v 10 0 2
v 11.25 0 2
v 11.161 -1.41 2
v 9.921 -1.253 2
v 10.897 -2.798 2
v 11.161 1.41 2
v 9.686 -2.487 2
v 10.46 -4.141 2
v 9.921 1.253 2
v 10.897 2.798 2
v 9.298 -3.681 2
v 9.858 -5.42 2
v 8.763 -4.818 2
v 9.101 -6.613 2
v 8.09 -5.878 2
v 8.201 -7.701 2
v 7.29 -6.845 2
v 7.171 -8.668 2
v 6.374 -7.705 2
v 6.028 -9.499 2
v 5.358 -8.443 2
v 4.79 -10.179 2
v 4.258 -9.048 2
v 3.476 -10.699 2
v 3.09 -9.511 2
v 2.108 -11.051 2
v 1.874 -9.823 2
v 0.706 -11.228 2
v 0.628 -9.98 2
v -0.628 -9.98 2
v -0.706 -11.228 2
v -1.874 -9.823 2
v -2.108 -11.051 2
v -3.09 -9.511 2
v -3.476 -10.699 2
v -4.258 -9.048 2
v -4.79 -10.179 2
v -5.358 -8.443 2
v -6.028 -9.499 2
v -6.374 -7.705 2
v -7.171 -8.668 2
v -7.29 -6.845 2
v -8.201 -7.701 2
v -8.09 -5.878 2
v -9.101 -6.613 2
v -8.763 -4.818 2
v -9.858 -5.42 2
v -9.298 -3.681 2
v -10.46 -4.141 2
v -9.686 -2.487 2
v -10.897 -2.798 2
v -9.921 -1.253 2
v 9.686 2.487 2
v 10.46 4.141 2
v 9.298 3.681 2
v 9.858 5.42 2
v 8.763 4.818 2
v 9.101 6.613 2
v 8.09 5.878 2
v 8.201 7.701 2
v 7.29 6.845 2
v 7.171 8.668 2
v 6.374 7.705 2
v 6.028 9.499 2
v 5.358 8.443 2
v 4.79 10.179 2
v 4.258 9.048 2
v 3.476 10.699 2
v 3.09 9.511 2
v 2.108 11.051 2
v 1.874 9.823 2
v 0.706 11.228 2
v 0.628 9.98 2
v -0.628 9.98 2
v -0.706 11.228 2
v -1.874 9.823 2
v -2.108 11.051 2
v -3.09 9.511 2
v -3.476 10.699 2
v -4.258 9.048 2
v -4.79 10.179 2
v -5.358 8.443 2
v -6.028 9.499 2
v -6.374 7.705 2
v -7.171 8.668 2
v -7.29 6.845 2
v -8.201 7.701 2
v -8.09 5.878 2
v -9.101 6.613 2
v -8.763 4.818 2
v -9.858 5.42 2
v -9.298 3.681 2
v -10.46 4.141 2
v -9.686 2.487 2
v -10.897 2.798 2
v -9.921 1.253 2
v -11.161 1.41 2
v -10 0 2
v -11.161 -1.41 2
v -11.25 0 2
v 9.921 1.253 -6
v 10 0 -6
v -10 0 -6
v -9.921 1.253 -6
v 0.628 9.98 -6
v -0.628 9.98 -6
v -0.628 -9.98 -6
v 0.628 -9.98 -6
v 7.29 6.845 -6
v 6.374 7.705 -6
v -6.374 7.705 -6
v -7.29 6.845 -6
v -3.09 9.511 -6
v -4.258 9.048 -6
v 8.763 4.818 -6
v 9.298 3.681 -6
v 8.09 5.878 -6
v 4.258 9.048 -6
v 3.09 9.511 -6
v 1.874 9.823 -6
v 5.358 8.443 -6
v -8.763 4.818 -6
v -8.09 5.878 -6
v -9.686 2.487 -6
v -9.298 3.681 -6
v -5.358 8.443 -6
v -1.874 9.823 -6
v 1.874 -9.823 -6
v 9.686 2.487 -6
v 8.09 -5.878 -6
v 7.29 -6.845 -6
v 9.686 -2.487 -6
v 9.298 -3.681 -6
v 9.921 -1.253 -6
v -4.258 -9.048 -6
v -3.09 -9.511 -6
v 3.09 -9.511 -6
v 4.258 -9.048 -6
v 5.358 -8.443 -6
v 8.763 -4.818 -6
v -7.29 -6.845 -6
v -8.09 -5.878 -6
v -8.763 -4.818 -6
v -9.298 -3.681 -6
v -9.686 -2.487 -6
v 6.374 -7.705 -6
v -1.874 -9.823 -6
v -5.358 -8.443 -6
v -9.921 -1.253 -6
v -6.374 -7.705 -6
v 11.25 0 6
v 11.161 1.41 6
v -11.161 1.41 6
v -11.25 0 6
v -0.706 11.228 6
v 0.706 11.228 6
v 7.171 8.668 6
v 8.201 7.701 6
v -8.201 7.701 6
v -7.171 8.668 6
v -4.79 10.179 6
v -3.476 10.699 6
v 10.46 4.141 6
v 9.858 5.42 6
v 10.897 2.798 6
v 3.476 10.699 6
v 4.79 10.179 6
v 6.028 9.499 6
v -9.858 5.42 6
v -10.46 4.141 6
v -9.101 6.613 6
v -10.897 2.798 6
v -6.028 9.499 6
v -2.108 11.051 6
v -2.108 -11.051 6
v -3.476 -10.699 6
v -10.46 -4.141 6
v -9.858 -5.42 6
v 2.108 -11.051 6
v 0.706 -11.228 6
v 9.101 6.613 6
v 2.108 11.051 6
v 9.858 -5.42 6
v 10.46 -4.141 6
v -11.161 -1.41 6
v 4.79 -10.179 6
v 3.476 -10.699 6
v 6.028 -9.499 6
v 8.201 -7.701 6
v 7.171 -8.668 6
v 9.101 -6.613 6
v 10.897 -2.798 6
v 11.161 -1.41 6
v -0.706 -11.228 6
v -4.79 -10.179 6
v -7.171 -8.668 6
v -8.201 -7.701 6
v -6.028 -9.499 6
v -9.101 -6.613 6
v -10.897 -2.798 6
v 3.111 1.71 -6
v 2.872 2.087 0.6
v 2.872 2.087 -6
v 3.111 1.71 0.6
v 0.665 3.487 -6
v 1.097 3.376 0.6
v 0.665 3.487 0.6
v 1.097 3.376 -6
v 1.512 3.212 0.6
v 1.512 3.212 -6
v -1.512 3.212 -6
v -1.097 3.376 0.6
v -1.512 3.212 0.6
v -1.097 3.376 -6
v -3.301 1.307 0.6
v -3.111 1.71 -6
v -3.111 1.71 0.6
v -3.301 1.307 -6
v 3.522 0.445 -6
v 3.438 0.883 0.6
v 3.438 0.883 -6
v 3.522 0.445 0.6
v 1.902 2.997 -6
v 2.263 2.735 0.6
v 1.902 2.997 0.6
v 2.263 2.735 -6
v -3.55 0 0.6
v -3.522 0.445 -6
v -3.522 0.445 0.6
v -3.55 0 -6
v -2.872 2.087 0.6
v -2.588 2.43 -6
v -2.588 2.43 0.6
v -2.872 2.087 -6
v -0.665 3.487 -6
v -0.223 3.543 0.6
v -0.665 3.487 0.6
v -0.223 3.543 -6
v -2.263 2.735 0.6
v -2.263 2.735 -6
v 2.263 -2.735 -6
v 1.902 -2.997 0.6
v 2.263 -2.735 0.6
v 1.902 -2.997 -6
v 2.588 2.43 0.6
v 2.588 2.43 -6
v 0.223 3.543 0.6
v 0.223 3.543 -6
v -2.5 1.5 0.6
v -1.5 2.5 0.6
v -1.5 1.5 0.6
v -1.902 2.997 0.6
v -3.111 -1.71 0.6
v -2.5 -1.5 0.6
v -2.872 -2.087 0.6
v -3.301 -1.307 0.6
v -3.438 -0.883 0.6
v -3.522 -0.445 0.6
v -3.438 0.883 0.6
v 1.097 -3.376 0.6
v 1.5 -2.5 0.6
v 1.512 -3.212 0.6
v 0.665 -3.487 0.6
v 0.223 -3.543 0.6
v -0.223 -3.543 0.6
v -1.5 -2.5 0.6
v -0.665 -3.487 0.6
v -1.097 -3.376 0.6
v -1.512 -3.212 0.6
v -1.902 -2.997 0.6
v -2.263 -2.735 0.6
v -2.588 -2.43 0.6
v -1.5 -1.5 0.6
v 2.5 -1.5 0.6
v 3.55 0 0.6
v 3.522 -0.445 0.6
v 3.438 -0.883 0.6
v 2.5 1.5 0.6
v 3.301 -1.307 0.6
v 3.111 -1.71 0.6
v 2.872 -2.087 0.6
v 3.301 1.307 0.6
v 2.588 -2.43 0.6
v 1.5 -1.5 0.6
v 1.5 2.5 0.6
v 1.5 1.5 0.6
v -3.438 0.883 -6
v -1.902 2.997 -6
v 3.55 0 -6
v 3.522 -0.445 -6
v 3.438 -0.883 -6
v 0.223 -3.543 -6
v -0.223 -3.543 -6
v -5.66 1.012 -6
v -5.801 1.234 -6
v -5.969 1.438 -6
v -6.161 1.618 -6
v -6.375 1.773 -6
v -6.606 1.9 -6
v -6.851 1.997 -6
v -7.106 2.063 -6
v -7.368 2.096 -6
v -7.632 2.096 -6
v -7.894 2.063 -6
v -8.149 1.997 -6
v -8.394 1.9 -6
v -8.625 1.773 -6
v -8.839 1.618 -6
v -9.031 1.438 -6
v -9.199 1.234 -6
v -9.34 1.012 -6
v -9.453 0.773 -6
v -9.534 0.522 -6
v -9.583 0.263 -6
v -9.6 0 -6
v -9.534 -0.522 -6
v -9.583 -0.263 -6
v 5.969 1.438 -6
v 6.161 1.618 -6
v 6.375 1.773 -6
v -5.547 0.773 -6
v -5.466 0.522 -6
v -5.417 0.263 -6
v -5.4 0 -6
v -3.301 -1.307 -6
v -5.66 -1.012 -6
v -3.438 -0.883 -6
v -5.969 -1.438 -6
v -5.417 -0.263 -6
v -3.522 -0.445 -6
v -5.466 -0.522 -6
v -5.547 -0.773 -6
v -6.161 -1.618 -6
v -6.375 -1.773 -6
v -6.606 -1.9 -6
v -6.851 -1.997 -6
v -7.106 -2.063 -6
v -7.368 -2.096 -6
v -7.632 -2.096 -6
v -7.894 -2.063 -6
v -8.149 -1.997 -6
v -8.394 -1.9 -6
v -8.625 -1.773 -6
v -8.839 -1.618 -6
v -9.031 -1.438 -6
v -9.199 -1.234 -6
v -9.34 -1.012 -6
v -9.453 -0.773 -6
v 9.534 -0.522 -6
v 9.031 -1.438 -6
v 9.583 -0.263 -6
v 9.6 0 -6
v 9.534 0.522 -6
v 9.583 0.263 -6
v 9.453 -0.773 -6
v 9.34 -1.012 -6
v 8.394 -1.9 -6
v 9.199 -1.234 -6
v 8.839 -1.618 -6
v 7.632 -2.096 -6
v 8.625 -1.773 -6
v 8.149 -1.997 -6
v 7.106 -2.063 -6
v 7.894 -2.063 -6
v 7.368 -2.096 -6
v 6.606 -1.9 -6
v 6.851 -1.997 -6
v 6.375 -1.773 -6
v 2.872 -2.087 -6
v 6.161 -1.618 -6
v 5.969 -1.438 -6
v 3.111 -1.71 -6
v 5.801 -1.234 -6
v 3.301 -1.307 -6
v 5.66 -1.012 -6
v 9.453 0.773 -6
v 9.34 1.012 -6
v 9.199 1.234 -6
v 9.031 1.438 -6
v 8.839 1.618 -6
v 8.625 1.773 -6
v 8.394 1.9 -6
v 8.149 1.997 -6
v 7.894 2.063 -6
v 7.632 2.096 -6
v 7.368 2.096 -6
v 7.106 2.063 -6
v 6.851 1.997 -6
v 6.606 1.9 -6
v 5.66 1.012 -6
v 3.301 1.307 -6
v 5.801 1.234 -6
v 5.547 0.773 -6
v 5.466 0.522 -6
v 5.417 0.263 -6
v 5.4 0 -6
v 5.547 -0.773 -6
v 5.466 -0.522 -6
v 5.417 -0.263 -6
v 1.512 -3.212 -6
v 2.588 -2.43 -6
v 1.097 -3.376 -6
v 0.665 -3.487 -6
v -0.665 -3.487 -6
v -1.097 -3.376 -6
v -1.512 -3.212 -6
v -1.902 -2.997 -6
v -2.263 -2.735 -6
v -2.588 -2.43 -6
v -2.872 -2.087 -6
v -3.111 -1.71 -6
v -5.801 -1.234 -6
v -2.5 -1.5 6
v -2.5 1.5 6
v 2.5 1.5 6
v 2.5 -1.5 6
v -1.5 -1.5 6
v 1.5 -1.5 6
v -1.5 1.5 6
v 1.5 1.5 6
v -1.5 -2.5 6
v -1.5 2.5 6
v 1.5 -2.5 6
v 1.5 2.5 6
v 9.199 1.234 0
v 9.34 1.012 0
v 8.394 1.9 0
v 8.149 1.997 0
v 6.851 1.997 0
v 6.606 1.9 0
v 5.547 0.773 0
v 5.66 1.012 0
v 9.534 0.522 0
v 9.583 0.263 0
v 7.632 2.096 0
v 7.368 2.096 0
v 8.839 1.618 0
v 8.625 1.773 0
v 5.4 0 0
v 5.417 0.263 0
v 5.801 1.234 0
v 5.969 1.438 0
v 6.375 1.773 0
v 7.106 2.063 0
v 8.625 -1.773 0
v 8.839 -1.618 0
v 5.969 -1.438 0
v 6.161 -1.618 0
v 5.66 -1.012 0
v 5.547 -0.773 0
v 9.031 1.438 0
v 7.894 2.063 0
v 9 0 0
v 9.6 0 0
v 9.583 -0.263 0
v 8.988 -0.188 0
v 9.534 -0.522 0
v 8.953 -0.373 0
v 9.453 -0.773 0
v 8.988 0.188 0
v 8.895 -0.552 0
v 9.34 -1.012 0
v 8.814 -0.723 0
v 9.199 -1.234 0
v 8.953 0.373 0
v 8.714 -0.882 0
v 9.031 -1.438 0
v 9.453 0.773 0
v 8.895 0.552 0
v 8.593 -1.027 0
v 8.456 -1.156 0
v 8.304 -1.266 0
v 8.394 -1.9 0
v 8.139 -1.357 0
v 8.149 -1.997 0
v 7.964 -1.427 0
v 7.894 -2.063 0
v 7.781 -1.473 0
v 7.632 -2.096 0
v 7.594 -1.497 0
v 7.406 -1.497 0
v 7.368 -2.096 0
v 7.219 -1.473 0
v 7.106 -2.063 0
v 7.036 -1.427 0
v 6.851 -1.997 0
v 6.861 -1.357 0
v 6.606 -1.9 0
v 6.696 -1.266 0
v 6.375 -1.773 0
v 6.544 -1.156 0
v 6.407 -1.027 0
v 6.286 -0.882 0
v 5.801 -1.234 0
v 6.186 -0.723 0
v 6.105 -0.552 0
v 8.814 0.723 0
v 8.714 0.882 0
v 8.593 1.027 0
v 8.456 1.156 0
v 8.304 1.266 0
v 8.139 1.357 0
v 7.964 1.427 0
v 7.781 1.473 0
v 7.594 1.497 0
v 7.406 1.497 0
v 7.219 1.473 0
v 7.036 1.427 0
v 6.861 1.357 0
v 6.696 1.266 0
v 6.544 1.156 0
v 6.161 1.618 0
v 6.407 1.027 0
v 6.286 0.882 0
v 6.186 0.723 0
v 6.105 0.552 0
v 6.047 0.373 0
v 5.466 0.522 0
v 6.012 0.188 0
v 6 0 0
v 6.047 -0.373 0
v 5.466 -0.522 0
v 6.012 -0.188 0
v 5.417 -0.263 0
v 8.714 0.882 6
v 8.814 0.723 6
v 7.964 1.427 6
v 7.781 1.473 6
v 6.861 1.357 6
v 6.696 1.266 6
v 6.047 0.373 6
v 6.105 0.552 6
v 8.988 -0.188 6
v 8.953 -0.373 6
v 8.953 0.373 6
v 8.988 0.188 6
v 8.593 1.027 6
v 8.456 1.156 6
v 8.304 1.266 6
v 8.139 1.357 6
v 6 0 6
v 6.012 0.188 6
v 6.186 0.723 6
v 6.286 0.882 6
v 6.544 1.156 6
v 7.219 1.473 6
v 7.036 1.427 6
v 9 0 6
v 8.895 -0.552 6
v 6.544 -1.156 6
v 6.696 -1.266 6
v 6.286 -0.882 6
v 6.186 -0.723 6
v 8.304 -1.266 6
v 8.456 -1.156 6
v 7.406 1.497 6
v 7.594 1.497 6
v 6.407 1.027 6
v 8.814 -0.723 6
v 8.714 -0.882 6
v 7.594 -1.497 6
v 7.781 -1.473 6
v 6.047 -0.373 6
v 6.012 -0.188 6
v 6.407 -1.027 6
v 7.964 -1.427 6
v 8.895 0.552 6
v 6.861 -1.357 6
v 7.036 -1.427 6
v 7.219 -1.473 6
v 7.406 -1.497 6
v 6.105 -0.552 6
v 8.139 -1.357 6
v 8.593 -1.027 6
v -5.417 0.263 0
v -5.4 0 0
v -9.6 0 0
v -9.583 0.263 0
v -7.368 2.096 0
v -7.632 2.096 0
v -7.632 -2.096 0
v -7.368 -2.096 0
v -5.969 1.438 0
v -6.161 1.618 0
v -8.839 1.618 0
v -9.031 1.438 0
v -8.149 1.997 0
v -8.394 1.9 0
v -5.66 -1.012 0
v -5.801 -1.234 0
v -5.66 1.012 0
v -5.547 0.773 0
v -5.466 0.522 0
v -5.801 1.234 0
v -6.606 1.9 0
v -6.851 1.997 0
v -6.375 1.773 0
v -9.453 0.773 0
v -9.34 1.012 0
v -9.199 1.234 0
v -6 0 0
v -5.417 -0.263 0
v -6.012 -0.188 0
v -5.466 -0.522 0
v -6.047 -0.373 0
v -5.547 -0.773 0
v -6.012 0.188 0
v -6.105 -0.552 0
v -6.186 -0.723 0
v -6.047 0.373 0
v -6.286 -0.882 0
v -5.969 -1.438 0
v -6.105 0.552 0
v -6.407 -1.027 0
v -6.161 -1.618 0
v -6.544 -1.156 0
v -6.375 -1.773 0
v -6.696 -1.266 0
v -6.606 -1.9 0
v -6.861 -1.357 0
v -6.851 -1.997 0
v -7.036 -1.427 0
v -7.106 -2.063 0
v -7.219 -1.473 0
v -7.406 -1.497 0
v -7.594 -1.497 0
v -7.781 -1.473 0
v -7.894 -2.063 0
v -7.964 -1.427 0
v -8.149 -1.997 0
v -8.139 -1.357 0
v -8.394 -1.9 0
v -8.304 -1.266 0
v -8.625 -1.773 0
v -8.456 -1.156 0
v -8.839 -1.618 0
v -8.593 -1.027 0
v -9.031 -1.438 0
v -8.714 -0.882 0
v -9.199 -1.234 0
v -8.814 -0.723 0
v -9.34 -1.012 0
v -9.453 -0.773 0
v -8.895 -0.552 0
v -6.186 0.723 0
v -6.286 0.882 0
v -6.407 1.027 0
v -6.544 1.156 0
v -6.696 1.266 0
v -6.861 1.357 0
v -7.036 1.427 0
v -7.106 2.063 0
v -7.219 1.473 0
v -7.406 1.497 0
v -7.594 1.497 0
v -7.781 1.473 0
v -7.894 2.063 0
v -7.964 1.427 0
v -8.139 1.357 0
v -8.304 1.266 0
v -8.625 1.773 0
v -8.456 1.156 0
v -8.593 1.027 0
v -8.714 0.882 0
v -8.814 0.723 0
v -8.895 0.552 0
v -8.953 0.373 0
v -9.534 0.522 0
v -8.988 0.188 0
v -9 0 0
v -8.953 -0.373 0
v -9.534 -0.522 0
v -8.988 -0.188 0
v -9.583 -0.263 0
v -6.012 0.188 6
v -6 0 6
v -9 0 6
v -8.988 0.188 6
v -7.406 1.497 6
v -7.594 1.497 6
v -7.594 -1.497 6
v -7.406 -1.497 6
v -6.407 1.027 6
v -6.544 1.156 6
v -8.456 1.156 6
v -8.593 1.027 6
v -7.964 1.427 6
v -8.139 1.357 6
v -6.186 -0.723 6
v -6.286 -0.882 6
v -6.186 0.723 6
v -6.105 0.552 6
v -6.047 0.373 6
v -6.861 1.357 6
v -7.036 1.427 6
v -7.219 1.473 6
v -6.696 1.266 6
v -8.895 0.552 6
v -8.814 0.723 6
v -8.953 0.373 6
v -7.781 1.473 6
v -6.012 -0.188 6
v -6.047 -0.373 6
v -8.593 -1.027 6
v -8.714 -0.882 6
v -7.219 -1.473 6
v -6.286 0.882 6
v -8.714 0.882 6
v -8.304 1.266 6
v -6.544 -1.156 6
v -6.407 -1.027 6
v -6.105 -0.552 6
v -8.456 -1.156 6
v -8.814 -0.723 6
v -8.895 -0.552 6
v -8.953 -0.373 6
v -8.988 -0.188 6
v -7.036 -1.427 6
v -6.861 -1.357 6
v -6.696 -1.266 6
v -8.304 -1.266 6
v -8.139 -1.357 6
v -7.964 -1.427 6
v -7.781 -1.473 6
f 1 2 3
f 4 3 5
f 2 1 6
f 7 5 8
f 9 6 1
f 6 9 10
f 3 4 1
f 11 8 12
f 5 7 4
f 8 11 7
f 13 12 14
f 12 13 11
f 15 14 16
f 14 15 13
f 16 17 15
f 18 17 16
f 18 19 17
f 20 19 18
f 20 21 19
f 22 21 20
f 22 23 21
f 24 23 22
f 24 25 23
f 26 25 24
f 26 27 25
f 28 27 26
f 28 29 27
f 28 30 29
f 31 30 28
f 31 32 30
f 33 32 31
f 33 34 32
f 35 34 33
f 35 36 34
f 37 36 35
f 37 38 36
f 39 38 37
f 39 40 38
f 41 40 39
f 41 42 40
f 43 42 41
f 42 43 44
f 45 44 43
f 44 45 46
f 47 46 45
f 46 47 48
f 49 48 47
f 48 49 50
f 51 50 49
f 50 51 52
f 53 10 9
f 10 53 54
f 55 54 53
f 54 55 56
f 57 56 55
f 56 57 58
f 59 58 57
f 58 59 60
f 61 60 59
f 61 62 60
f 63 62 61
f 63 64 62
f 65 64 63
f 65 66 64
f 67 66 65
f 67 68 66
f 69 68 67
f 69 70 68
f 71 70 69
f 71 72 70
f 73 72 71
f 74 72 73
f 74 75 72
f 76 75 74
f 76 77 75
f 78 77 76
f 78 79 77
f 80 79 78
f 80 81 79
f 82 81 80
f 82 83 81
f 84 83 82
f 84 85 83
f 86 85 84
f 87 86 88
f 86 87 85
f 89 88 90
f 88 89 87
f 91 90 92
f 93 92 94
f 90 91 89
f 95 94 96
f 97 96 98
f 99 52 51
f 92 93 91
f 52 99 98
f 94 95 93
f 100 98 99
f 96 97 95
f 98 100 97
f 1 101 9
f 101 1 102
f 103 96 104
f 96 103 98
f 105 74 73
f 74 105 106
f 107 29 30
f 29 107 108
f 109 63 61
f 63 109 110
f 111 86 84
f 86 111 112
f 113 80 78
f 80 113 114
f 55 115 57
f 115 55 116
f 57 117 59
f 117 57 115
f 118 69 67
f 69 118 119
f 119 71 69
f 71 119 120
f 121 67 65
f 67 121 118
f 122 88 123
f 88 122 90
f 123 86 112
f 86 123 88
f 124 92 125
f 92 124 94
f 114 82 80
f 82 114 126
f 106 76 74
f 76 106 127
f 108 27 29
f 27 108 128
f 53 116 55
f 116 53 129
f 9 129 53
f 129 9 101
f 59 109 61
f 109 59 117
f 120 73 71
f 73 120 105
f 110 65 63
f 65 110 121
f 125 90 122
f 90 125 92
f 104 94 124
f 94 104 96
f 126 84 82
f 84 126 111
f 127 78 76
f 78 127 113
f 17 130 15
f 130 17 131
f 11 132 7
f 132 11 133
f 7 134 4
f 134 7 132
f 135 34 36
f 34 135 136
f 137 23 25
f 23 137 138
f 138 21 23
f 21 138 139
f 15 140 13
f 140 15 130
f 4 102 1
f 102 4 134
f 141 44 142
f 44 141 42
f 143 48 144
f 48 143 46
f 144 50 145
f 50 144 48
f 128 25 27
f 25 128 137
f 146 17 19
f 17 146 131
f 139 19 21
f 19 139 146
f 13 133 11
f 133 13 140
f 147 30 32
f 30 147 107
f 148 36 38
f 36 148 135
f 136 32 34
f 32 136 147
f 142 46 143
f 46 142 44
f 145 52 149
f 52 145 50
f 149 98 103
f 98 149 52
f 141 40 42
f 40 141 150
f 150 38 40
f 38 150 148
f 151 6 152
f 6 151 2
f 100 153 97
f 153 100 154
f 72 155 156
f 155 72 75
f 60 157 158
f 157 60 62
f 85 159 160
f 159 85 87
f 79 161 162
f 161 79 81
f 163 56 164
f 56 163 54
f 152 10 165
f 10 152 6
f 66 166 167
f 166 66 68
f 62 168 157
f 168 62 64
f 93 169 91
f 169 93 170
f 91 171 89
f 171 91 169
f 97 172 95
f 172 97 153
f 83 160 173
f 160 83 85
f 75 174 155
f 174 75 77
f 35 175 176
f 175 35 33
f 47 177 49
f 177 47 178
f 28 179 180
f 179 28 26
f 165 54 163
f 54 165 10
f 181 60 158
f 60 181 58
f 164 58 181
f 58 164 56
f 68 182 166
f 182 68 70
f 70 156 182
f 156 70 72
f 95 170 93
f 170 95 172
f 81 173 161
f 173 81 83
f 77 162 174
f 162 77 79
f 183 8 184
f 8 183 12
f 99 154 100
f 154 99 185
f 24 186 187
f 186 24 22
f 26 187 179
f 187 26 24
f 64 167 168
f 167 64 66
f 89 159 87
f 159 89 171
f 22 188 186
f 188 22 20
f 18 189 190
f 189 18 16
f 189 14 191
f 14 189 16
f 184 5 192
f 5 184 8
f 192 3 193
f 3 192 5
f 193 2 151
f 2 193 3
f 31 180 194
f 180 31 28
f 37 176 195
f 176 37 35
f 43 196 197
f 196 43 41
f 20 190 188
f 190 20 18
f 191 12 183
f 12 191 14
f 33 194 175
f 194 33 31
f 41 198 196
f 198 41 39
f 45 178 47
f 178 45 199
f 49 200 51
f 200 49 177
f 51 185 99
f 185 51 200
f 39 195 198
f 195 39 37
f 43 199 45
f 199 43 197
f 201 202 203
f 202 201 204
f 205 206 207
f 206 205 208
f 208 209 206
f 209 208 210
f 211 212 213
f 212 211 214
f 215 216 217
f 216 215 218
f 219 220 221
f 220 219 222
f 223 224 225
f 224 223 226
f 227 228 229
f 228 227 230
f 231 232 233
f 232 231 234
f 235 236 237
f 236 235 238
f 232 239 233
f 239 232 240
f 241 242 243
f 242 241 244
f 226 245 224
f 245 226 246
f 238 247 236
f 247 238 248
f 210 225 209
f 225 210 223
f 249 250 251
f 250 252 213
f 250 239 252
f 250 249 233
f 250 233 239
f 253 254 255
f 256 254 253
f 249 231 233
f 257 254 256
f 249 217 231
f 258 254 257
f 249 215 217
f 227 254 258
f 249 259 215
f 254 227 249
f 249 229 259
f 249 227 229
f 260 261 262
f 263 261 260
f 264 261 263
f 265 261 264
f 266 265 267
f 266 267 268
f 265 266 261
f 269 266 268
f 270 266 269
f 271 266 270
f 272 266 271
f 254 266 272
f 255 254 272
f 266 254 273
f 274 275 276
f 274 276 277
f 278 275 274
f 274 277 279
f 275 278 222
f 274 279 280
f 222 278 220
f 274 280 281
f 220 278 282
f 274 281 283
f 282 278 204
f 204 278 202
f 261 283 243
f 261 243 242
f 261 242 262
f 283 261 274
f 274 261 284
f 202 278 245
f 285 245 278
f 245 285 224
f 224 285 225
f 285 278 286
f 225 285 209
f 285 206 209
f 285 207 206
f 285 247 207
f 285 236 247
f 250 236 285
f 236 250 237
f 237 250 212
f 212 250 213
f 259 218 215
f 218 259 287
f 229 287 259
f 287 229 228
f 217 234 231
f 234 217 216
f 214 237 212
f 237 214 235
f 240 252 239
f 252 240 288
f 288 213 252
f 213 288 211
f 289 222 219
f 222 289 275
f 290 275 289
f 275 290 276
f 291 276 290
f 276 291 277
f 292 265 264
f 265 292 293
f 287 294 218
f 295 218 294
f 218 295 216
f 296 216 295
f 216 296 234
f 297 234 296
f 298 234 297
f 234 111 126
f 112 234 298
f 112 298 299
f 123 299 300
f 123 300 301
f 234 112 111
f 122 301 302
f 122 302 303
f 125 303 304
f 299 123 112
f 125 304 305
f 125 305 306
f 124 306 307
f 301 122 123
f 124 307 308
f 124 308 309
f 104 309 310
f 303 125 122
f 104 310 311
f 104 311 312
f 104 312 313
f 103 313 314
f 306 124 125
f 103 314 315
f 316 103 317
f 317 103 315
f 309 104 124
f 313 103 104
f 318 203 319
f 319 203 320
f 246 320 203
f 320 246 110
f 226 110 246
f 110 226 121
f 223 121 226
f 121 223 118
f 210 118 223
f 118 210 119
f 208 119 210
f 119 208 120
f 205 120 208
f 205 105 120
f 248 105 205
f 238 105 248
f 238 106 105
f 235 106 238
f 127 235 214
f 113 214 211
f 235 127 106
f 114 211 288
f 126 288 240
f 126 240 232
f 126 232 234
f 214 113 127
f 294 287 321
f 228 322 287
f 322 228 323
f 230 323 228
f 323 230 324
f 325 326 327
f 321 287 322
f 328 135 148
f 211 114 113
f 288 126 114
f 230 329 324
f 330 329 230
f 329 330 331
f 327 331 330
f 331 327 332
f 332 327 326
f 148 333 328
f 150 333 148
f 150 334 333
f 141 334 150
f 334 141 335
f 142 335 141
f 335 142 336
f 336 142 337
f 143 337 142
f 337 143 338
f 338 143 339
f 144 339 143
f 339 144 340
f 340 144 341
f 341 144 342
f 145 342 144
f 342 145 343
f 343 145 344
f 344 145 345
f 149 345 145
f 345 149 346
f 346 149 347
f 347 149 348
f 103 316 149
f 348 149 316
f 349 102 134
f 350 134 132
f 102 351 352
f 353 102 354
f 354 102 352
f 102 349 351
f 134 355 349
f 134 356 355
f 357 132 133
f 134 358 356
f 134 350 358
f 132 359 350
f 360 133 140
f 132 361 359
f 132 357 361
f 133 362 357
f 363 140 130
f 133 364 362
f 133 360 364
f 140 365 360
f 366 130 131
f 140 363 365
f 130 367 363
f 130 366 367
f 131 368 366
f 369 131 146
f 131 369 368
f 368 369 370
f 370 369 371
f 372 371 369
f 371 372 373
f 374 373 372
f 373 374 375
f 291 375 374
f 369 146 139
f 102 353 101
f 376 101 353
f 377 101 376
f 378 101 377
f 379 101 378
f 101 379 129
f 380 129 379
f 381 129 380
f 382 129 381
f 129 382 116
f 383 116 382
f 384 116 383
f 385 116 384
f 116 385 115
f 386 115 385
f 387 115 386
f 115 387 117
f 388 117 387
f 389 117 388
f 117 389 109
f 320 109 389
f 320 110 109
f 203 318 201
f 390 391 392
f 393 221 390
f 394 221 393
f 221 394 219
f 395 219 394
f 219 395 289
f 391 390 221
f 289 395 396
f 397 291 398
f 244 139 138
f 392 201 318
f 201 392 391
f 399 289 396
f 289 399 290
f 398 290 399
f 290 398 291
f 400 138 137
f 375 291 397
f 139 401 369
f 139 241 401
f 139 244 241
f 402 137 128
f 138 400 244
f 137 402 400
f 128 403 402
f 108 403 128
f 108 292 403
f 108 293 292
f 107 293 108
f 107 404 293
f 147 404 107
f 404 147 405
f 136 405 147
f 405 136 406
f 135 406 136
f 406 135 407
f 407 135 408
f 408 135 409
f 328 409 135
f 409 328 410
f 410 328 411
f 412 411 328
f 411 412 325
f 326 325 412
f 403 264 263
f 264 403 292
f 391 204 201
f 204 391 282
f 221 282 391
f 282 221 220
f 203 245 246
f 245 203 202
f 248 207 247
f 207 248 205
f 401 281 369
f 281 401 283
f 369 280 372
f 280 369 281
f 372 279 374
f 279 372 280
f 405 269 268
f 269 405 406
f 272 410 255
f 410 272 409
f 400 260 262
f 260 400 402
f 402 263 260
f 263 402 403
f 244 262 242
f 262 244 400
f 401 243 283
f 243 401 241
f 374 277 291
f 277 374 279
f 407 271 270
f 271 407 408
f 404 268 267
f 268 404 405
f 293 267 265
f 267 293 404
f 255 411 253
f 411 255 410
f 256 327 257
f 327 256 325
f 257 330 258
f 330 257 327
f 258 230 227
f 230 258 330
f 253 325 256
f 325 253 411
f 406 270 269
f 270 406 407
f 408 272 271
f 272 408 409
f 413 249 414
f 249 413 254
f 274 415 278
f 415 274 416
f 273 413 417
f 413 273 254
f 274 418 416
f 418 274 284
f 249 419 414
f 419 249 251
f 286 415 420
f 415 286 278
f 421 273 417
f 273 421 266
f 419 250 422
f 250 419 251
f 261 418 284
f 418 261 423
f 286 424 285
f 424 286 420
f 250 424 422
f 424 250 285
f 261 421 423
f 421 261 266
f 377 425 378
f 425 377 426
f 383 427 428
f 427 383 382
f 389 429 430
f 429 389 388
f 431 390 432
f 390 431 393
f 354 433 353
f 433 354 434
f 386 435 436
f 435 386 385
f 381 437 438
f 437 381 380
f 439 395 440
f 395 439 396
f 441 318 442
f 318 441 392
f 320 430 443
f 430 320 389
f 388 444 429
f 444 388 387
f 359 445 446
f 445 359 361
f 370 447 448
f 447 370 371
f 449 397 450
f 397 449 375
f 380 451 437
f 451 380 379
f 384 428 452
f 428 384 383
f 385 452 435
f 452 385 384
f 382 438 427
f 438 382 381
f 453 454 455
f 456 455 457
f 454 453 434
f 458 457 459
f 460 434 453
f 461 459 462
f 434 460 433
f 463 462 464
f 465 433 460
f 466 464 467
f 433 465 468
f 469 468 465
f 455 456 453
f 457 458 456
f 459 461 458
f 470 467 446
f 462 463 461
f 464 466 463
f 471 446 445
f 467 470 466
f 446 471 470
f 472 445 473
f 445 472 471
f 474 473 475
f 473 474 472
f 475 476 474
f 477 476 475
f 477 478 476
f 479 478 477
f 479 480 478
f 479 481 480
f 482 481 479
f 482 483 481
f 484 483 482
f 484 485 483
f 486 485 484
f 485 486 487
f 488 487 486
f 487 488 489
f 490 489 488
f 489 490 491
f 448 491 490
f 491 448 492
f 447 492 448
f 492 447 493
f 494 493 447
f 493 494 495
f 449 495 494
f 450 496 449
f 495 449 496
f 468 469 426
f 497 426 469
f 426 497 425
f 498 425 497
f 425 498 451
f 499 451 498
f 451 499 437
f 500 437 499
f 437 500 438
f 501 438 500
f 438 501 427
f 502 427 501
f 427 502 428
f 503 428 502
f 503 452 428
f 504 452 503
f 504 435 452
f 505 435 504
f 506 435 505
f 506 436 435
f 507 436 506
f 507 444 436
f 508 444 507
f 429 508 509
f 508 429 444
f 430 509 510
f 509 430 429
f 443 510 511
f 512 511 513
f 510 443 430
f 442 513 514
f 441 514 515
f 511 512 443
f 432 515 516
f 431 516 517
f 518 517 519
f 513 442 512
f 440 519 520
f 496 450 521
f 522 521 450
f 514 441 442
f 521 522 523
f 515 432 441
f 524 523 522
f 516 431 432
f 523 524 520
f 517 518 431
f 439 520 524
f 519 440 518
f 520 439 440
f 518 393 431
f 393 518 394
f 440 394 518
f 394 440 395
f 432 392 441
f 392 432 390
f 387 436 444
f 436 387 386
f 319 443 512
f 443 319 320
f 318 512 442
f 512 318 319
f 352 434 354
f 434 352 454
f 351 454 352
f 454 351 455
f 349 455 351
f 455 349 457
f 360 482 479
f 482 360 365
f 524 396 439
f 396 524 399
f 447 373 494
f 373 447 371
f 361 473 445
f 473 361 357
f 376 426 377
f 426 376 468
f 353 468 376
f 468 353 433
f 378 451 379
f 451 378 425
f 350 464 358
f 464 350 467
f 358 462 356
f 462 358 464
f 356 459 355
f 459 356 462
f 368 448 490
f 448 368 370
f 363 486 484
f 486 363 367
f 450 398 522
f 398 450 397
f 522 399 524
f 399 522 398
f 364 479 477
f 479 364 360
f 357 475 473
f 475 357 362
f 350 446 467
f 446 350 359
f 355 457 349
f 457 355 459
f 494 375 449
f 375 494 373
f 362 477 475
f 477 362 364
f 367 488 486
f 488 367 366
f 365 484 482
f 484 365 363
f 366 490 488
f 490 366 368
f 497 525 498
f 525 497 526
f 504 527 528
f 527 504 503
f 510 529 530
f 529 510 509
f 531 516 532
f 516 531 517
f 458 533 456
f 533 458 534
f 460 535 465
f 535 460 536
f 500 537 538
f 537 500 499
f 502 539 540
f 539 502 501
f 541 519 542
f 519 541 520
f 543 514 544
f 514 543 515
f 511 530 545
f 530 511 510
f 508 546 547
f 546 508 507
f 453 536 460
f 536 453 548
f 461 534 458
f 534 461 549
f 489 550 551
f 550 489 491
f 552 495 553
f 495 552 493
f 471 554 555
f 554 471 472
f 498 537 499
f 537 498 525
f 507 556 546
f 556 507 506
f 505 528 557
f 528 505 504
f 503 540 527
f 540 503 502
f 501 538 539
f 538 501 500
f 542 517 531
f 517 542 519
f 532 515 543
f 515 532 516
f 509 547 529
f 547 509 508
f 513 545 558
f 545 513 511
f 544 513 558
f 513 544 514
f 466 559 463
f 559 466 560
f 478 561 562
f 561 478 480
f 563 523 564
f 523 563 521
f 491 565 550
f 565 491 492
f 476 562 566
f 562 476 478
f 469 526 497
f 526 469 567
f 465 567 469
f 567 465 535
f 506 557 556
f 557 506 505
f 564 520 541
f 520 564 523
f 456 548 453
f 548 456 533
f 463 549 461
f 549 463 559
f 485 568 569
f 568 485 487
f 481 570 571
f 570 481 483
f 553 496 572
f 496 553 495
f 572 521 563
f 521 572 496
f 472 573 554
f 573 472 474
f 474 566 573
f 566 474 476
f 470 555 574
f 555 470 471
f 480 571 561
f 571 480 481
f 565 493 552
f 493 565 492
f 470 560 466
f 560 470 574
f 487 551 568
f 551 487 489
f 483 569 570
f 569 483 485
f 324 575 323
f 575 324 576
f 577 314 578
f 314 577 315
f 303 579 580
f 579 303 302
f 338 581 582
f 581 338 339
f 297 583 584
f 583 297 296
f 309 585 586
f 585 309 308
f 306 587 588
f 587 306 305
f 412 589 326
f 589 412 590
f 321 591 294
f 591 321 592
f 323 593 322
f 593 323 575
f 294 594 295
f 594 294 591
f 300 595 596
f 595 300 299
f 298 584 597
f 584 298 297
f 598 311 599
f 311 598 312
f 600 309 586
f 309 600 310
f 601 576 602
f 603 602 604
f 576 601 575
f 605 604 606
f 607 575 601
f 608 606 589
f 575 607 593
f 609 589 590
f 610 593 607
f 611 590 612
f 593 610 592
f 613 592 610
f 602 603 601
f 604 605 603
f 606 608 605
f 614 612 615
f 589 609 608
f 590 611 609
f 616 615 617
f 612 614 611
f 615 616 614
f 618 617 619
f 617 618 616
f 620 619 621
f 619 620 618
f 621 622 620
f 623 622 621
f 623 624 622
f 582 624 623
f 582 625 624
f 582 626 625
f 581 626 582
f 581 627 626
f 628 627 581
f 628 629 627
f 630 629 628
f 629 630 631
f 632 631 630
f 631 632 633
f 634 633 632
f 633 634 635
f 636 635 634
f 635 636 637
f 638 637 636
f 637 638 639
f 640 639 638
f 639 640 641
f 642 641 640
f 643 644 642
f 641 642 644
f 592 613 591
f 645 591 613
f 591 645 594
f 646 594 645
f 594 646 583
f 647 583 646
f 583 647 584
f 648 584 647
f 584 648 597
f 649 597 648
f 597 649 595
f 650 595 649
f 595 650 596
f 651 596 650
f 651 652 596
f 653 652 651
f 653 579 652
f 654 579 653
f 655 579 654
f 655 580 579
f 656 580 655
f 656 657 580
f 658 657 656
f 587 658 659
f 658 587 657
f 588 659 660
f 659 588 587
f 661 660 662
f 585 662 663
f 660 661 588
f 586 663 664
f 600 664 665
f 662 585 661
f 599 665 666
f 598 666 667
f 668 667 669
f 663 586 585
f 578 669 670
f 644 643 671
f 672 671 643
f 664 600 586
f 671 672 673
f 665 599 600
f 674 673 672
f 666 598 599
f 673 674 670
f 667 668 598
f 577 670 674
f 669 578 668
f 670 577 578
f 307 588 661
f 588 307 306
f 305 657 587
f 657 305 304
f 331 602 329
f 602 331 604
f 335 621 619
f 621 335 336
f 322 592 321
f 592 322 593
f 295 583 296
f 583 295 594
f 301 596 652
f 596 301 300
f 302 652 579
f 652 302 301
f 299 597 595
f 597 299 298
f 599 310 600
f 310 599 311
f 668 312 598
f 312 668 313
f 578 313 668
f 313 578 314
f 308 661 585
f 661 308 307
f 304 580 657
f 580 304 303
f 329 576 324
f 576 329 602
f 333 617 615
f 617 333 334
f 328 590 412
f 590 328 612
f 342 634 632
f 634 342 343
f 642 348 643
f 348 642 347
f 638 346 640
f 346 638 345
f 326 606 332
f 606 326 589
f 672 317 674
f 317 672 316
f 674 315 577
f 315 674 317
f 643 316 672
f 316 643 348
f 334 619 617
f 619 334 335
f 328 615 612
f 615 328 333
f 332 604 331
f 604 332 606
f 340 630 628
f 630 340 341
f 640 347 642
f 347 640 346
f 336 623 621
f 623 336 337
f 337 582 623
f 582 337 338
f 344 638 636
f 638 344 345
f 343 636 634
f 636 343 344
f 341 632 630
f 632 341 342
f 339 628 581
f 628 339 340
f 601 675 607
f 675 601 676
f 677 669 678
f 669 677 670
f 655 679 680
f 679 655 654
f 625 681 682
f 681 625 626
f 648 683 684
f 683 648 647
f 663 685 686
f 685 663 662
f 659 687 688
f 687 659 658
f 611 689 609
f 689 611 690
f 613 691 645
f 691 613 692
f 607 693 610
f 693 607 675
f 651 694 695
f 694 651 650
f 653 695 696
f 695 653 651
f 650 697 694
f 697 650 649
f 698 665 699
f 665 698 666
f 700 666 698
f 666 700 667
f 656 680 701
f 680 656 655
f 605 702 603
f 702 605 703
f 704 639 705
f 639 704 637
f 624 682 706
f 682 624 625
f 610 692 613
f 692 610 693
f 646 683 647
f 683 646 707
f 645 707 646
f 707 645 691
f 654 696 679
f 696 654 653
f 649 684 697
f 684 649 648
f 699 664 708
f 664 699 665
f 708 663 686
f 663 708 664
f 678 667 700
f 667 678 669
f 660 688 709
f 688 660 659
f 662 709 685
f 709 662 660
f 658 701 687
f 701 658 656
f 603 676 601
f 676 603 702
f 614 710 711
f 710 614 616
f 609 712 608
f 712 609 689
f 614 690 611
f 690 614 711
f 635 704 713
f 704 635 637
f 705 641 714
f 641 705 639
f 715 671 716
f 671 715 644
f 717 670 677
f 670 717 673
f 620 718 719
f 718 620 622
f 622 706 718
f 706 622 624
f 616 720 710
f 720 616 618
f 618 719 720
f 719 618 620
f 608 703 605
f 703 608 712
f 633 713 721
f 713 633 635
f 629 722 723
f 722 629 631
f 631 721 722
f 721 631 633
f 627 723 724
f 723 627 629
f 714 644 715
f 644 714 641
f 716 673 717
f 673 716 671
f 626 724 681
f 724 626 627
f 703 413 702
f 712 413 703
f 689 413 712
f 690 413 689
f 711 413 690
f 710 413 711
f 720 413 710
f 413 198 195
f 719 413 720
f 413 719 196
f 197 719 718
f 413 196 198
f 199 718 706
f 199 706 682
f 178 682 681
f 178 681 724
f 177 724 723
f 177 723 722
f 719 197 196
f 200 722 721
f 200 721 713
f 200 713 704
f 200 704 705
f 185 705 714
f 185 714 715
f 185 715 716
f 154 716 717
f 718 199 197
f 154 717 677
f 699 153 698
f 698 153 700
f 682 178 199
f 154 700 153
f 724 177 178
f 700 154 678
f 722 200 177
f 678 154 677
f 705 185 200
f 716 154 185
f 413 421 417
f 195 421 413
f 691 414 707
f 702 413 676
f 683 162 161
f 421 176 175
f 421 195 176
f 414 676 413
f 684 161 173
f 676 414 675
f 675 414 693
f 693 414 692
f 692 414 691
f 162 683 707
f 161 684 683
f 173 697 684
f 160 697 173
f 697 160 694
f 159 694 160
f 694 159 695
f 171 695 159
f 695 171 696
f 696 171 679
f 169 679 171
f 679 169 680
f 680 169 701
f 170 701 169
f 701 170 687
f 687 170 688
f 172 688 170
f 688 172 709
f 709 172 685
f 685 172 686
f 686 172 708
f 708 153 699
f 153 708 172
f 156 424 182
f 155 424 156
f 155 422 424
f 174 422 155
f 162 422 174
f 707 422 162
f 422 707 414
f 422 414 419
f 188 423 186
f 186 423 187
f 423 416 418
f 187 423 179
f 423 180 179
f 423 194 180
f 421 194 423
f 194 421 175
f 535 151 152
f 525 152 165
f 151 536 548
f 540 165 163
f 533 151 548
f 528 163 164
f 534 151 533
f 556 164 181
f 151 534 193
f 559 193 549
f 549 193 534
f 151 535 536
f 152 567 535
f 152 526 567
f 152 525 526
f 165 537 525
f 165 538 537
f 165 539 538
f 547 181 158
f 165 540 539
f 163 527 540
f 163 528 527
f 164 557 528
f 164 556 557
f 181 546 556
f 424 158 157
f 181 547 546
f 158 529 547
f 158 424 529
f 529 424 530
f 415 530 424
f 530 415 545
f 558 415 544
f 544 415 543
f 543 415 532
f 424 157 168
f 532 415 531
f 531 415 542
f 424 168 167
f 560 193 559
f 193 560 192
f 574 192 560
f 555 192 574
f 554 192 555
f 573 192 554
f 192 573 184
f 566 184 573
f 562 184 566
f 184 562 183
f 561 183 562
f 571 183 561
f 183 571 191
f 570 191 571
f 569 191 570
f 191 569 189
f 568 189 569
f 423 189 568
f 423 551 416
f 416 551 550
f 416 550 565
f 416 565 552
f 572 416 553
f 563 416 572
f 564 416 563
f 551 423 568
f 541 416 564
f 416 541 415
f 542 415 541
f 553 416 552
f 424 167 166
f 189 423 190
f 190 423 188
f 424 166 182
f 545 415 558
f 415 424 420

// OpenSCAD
$fn = 50;


difference() {
	union() {
		translate(v = [0, 0, -6.0000000000]) {
			rotate(a = [0, 0, 0]) {
				cylinder(h = 12, r = 12.0000000000);
			}
		}
	}
	union() {
		translate(v = [0, 0, 0]) {
			rotate(a = [0, 0, 0]) {
				translate(v = [0, 0, -2.0000000000]) {
					union() {
						difference() {
							translate(v = [0, 0, 0]) {
								rotate(a = [0, 0, 0]) {
									cylinder(h = 4, r = 13.5000000000);
								}
							}
							translate(v = [0, 0, 0]) {
								rotate(a = [0, 0, 0]) {
									cylinder(h = 4, r = 10.0000000000);
								}
							}
						}
						difference() {
							translate(v = [0, 0, -50]) {
								rotate(a = [0, 0, 0]) {
									cylinder(h = 100, r = 12.2500000000);
								}
							}
							translate(v = [0, 0, -50]) {
								rotate(a = [0, 0, 0]) {
									cylinder(h = 100, r = 11.2500000000);
								}
							}
						}
					}
				}
			}
		}
		translate(v = [-15.0000000000, -15.0000000000, -125.0000000000]) {
			rotate(a = [0, 0, 0]) {
				cylinder(h = 250, r = 3.0000000000);
			}
		}
		translate(v = [-15.0000000000, 15.0000000000, -125.0000000000]) {
			rotate(a = [0, 0, 0]) {
				cylinder(h = 250, r = 3.0000000000);
			}
		}
		translate(v = [15.0000000000, -15.0000000000, -125.0000000000]) {
			rotate(a = [0, 0, 0]) {
				cylinder(h = 250, r = 3.0000000000);
			}
		}
		translate(v = [15.0000000000, 15.0000000000, -125.0000000000]) {
			rotate(a = [0, 0, 0]) {
				cylinder(h = 250, r = 3.0000000000);
			}
		}
		translate(v = [0, 0, -6.0000000000]) {
			rotate(a = [0, 0, 0]) {
				cylinder(h = 6.6000000000, r1 = 3.5500000000, r2 = 3.5500000000);
			}
		}
		#translate(v = [-2.5000000000, -1.5000000000, -6]) {
			rotate(a = [0, 0, 0]) {
				cube(size = [5, 3, 30]);
			}
		}
		#translate(v = [-1.5000000000, -2.5000000000, -6]) {
			rotate(a = [0, 0, 0]) {
				cube(size = [3, 5, 30]);
			}
		}
		translate(v = [7.5000000000, 0, -6.0000000000]) {
			rotate(a = [0, 0, 0]) {
				cylinder(h = 6, r = 2.1000000000);
			}
		}
		translate(v = [7.5000000000, 0, -125.0000000000]) {
			rotate(a = [0, 0, 0]) {
				cylinder(h = 250, r = 1.5000000000);
			}
		}
		translate(v = [7.5000000000, 0, -6.0000000000]) {
			rotate(a = [0, 0, 0]) {
				cylinder(h = 6, r = 2.1000000000);
			}
		}
		translate(v = [7.5000000000, 0, -125.0000000000]) {
			rotate(a = [0, 0, 0]) {
				cylinder(h = 250, r = 1.5000000000);
			}
		}
		translate(v = [7.5000000000, 0, -6.0000000000]) {
			rotate(a = [0, 0, 0]) {
				cylinder(h = 6, r = 2.1000000000);
			}
		}
		translate(v = [7.5000000000, 0, -125.0000000000]) {
			rotate(a = [0, 0, 0]) {
				cylinder(h = 250, r = 1.5000000000);
			}
		}
		translate(v = [-7.5000000000, 0, -6.0000000000]) {
			rotate(a = [0, 0, 0]) {
				cylinder(h = 6, r = 2.1000000000);
			}
		}
		translate(v = [-7.5000000000, 0, -125.0000000000]) {
			rotate(a = [0, 0, 0]) {
				cylinder(h = 250, r = 1.5000000000);
			}
		}
		translate(v = [-7.5000000000, 0, -6.0000000000]) {
			rotate(a = [0, 0, 0]) {
				cylinder(h = 6, r = 2.1000000000);
			}
		}
		translate(v = [-7.5000000000, 0, -125.0000000000]) {
			rotate(a = [0, 0, 0]) {
				cylinder(h = 250, r = 1.5000000000);
			}
		}
		translate(v = [-7.5000000000, 0, -6.0000000000]) {
			rotate(a = [0, 0, 0]) {
				cylinder(h = 6, r = 2.1000000000);
			}
		}
		translate(v = [-7.5000000000, 0, -125.0000000000]) {
			rotate(a = [0, 0, 0]) {
				cylinder(h = 250, r = 1.5000000000);
			}
		}
		translate(v = [0, 0, -3]) {
			rotate(a = [0, 0, 0]) {
				translate(v = [0, 0, -2.0000000000]) {
					union() {
						difference() {
							translate(v = [0, 0, 0]) {
								rotate(a = [0, 0, 0]) {
									cylinder(h = 4, r = 13.5000000000);
								}
							}
							translate(v = [0, 0, 0]) {
								rotate(a = [0, 0, 0]) {
									cylinder(h = 4, r = 10.0000000000);
								}
							}
						}
						difference() {
							translate(v = [0, 0, -50]) {
								rotate(a = [0, 0, 0]) {
									cylinder(h = 100, r = 12.2500000000);
								}
							}
							translate(v = [0, 0, -50]) {
								rotate(a = [0, 0, 0]) {
									cylinder(h = 100, r = 11.2500000000);
								}
							}
						}
					}
				}
			}
		}
		translate(v = [0, 0, -6]) {
			rotate(a = [0, 0, 0]) {
				translate(v = [0, 0, -2.0000000000]) {
					union() {
						difference() {
							translate(v = [0, 0, 0]) {
								rotate(a = [0, 0, 0]) {
									cylinder(h = 4, r = 13.5000000000);
								}
							}
							translate(v = [0, 0, 0]) {
								rotate(a = [0, 0, 0]) {
									cylinder(h = 4, r = 10.0000000000);
								}
							}
						}
						difference() {
							translate(v = [0, 0, -50]) {
								rotate(a = [0, 0, 0]) {
									cylinder(h = 100, r = 12.2500000000);
								}
							}
							translate(v = [0, 0, -50]) {
								rotate(a = [0, 0, 0]) {
									cylinder(h = 100, r = 11.2500000000);
								}
							}
						}
					}
				}
			}
		}
	}
}
